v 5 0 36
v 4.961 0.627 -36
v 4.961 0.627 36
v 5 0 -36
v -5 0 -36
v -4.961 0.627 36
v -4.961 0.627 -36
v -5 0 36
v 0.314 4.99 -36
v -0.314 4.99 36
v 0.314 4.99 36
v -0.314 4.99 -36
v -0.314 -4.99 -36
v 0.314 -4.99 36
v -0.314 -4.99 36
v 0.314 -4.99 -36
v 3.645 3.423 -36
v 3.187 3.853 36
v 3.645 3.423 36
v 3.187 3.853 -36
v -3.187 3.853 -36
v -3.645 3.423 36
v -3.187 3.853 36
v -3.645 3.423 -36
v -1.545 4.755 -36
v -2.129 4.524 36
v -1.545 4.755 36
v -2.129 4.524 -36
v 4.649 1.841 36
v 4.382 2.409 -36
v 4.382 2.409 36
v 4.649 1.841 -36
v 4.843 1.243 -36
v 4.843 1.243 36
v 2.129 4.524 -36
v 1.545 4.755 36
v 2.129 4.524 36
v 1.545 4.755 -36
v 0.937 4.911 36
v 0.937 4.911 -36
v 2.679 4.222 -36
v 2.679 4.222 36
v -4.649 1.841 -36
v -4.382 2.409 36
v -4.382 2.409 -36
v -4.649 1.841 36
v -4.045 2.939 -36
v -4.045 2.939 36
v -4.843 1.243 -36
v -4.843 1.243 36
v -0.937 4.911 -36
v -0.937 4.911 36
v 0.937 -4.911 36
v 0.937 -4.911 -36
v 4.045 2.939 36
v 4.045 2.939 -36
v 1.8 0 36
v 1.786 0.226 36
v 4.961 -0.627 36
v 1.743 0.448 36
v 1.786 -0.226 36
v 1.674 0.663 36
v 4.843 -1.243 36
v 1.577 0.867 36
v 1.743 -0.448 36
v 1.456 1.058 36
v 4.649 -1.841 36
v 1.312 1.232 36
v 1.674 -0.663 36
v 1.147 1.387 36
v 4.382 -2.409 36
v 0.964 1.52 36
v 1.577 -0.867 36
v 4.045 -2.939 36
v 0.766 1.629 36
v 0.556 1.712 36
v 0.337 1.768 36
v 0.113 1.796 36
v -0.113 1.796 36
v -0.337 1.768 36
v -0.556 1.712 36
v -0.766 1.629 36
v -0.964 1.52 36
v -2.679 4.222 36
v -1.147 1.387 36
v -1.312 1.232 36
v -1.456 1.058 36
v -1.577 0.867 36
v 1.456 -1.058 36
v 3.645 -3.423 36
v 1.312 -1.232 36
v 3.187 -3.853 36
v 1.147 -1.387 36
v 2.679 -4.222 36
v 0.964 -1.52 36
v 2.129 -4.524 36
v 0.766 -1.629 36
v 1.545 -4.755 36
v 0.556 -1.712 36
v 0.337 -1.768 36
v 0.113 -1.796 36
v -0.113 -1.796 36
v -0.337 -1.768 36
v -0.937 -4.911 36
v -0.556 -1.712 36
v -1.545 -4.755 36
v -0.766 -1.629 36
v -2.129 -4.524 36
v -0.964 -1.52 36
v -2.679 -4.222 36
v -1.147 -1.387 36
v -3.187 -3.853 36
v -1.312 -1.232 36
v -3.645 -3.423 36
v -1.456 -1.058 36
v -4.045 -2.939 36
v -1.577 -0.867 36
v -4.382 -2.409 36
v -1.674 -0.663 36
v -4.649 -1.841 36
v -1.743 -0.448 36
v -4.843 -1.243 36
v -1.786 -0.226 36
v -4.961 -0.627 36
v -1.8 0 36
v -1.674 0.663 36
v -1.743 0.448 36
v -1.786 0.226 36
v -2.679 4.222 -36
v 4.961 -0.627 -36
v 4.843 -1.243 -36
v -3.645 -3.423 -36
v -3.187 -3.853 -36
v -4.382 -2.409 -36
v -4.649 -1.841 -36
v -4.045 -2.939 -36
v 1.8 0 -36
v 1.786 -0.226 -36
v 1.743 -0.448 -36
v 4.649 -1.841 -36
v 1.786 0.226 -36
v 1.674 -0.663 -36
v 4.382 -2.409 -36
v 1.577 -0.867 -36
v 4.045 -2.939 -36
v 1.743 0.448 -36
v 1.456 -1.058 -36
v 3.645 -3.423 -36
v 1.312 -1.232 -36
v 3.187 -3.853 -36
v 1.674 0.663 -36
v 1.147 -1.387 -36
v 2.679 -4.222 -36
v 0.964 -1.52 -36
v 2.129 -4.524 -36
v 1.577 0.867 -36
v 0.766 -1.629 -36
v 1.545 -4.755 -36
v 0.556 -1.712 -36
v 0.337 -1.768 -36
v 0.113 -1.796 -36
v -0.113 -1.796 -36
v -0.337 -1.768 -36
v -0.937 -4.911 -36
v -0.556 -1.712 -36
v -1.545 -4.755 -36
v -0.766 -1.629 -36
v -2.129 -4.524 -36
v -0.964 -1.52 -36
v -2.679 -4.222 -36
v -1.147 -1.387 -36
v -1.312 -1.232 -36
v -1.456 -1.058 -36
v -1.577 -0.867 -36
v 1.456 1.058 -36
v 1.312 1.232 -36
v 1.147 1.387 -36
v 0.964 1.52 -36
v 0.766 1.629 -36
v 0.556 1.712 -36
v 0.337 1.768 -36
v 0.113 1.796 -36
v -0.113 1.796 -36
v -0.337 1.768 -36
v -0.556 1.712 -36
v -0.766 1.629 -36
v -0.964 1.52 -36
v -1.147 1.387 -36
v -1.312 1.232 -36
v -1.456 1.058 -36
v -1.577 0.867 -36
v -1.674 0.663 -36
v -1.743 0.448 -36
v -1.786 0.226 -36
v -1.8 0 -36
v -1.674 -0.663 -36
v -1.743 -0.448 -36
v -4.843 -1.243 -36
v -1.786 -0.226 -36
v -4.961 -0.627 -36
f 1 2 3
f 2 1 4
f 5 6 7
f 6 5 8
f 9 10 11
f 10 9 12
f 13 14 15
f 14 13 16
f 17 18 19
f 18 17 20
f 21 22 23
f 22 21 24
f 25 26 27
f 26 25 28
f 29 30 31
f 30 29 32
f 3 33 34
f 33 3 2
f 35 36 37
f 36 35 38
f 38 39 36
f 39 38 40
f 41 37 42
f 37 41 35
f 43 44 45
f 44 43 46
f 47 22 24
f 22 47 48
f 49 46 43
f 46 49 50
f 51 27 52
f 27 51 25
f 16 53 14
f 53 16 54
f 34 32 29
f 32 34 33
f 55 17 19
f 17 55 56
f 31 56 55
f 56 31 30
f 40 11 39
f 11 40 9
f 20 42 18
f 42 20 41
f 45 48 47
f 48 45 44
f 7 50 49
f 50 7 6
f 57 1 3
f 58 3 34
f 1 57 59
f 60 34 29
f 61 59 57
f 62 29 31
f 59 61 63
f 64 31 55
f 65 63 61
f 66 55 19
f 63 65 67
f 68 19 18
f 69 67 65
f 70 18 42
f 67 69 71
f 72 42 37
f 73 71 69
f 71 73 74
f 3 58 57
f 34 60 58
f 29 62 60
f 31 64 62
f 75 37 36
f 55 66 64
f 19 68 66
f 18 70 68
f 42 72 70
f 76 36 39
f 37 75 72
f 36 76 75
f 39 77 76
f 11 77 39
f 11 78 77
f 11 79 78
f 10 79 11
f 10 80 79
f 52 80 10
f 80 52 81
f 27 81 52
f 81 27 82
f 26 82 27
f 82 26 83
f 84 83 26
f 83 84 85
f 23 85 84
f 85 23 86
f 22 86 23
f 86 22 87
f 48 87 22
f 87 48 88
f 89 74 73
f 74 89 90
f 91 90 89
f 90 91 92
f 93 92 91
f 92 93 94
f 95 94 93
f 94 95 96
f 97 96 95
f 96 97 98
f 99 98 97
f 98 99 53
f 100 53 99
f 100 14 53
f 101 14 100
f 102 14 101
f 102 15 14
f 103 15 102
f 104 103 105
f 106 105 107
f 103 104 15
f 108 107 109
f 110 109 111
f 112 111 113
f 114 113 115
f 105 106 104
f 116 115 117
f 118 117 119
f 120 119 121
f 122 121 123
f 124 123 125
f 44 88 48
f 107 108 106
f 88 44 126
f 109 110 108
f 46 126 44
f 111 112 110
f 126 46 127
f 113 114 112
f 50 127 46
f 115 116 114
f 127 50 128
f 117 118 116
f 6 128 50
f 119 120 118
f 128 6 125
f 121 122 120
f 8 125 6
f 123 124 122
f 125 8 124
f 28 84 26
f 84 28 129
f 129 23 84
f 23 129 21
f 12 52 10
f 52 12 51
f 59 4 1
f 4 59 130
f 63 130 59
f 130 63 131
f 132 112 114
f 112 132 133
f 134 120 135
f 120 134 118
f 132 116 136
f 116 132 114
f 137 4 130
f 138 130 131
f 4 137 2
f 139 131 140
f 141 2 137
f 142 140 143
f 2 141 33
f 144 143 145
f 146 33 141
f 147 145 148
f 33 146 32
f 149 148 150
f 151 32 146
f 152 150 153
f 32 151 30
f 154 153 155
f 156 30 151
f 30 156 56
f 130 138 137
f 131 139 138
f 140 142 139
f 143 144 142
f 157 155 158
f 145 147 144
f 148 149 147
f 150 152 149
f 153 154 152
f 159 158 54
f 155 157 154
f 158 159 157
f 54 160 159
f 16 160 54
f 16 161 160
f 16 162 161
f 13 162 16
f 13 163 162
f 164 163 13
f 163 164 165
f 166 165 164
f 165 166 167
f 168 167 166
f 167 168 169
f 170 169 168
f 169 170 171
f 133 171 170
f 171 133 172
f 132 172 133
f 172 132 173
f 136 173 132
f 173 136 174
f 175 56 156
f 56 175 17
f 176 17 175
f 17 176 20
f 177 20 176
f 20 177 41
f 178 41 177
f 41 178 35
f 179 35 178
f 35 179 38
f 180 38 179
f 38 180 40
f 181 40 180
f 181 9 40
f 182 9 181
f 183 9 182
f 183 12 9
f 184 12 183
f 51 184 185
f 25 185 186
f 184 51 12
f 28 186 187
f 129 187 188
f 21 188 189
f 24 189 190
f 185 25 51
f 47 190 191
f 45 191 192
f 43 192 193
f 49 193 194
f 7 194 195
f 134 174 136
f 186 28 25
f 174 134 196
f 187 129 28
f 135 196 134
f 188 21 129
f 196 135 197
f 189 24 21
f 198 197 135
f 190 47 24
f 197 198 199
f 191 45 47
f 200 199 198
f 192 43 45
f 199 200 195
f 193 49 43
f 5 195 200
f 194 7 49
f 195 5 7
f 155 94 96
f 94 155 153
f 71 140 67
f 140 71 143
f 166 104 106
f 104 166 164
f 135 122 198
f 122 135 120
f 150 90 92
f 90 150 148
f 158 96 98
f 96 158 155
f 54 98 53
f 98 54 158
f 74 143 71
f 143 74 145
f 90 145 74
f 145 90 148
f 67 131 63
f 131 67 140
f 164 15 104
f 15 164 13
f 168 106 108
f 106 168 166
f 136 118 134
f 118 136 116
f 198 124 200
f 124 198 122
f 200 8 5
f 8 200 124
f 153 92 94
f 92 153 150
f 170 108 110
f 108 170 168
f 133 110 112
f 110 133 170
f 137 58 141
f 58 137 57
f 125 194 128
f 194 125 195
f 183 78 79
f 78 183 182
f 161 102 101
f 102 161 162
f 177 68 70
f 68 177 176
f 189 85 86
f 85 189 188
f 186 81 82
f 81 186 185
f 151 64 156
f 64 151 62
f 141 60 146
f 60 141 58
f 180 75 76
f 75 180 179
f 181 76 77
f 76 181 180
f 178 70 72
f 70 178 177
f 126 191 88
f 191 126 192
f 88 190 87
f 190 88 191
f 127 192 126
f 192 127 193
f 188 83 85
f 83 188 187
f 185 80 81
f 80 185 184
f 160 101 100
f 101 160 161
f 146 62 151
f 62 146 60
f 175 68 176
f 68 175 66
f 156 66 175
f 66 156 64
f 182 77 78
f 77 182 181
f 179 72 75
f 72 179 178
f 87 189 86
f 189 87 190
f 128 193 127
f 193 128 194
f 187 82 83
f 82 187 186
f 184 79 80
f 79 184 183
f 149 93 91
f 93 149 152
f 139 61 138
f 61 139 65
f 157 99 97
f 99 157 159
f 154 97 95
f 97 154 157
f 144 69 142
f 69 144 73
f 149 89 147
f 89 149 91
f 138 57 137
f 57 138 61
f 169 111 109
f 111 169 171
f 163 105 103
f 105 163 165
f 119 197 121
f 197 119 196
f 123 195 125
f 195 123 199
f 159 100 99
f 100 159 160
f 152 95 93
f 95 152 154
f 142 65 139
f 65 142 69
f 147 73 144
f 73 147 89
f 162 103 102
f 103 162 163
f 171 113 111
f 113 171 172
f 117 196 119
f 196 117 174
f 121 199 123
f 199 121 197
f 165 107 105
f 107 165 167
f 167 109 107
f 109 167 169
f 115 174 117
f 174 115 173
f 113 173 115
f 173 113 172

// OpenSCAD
$fn = 50;


difference() {
	union() {
		translate(v = [0, 0, -36.0000000000]) {
			cylinder(h = 72, r = 5.0000000000);
		}
	}
	union() {
		translate(v = [0, 0, -100.0000000000]) {
			cylinder(h = 200, r = 1.8000000000);
		}
	}
}
